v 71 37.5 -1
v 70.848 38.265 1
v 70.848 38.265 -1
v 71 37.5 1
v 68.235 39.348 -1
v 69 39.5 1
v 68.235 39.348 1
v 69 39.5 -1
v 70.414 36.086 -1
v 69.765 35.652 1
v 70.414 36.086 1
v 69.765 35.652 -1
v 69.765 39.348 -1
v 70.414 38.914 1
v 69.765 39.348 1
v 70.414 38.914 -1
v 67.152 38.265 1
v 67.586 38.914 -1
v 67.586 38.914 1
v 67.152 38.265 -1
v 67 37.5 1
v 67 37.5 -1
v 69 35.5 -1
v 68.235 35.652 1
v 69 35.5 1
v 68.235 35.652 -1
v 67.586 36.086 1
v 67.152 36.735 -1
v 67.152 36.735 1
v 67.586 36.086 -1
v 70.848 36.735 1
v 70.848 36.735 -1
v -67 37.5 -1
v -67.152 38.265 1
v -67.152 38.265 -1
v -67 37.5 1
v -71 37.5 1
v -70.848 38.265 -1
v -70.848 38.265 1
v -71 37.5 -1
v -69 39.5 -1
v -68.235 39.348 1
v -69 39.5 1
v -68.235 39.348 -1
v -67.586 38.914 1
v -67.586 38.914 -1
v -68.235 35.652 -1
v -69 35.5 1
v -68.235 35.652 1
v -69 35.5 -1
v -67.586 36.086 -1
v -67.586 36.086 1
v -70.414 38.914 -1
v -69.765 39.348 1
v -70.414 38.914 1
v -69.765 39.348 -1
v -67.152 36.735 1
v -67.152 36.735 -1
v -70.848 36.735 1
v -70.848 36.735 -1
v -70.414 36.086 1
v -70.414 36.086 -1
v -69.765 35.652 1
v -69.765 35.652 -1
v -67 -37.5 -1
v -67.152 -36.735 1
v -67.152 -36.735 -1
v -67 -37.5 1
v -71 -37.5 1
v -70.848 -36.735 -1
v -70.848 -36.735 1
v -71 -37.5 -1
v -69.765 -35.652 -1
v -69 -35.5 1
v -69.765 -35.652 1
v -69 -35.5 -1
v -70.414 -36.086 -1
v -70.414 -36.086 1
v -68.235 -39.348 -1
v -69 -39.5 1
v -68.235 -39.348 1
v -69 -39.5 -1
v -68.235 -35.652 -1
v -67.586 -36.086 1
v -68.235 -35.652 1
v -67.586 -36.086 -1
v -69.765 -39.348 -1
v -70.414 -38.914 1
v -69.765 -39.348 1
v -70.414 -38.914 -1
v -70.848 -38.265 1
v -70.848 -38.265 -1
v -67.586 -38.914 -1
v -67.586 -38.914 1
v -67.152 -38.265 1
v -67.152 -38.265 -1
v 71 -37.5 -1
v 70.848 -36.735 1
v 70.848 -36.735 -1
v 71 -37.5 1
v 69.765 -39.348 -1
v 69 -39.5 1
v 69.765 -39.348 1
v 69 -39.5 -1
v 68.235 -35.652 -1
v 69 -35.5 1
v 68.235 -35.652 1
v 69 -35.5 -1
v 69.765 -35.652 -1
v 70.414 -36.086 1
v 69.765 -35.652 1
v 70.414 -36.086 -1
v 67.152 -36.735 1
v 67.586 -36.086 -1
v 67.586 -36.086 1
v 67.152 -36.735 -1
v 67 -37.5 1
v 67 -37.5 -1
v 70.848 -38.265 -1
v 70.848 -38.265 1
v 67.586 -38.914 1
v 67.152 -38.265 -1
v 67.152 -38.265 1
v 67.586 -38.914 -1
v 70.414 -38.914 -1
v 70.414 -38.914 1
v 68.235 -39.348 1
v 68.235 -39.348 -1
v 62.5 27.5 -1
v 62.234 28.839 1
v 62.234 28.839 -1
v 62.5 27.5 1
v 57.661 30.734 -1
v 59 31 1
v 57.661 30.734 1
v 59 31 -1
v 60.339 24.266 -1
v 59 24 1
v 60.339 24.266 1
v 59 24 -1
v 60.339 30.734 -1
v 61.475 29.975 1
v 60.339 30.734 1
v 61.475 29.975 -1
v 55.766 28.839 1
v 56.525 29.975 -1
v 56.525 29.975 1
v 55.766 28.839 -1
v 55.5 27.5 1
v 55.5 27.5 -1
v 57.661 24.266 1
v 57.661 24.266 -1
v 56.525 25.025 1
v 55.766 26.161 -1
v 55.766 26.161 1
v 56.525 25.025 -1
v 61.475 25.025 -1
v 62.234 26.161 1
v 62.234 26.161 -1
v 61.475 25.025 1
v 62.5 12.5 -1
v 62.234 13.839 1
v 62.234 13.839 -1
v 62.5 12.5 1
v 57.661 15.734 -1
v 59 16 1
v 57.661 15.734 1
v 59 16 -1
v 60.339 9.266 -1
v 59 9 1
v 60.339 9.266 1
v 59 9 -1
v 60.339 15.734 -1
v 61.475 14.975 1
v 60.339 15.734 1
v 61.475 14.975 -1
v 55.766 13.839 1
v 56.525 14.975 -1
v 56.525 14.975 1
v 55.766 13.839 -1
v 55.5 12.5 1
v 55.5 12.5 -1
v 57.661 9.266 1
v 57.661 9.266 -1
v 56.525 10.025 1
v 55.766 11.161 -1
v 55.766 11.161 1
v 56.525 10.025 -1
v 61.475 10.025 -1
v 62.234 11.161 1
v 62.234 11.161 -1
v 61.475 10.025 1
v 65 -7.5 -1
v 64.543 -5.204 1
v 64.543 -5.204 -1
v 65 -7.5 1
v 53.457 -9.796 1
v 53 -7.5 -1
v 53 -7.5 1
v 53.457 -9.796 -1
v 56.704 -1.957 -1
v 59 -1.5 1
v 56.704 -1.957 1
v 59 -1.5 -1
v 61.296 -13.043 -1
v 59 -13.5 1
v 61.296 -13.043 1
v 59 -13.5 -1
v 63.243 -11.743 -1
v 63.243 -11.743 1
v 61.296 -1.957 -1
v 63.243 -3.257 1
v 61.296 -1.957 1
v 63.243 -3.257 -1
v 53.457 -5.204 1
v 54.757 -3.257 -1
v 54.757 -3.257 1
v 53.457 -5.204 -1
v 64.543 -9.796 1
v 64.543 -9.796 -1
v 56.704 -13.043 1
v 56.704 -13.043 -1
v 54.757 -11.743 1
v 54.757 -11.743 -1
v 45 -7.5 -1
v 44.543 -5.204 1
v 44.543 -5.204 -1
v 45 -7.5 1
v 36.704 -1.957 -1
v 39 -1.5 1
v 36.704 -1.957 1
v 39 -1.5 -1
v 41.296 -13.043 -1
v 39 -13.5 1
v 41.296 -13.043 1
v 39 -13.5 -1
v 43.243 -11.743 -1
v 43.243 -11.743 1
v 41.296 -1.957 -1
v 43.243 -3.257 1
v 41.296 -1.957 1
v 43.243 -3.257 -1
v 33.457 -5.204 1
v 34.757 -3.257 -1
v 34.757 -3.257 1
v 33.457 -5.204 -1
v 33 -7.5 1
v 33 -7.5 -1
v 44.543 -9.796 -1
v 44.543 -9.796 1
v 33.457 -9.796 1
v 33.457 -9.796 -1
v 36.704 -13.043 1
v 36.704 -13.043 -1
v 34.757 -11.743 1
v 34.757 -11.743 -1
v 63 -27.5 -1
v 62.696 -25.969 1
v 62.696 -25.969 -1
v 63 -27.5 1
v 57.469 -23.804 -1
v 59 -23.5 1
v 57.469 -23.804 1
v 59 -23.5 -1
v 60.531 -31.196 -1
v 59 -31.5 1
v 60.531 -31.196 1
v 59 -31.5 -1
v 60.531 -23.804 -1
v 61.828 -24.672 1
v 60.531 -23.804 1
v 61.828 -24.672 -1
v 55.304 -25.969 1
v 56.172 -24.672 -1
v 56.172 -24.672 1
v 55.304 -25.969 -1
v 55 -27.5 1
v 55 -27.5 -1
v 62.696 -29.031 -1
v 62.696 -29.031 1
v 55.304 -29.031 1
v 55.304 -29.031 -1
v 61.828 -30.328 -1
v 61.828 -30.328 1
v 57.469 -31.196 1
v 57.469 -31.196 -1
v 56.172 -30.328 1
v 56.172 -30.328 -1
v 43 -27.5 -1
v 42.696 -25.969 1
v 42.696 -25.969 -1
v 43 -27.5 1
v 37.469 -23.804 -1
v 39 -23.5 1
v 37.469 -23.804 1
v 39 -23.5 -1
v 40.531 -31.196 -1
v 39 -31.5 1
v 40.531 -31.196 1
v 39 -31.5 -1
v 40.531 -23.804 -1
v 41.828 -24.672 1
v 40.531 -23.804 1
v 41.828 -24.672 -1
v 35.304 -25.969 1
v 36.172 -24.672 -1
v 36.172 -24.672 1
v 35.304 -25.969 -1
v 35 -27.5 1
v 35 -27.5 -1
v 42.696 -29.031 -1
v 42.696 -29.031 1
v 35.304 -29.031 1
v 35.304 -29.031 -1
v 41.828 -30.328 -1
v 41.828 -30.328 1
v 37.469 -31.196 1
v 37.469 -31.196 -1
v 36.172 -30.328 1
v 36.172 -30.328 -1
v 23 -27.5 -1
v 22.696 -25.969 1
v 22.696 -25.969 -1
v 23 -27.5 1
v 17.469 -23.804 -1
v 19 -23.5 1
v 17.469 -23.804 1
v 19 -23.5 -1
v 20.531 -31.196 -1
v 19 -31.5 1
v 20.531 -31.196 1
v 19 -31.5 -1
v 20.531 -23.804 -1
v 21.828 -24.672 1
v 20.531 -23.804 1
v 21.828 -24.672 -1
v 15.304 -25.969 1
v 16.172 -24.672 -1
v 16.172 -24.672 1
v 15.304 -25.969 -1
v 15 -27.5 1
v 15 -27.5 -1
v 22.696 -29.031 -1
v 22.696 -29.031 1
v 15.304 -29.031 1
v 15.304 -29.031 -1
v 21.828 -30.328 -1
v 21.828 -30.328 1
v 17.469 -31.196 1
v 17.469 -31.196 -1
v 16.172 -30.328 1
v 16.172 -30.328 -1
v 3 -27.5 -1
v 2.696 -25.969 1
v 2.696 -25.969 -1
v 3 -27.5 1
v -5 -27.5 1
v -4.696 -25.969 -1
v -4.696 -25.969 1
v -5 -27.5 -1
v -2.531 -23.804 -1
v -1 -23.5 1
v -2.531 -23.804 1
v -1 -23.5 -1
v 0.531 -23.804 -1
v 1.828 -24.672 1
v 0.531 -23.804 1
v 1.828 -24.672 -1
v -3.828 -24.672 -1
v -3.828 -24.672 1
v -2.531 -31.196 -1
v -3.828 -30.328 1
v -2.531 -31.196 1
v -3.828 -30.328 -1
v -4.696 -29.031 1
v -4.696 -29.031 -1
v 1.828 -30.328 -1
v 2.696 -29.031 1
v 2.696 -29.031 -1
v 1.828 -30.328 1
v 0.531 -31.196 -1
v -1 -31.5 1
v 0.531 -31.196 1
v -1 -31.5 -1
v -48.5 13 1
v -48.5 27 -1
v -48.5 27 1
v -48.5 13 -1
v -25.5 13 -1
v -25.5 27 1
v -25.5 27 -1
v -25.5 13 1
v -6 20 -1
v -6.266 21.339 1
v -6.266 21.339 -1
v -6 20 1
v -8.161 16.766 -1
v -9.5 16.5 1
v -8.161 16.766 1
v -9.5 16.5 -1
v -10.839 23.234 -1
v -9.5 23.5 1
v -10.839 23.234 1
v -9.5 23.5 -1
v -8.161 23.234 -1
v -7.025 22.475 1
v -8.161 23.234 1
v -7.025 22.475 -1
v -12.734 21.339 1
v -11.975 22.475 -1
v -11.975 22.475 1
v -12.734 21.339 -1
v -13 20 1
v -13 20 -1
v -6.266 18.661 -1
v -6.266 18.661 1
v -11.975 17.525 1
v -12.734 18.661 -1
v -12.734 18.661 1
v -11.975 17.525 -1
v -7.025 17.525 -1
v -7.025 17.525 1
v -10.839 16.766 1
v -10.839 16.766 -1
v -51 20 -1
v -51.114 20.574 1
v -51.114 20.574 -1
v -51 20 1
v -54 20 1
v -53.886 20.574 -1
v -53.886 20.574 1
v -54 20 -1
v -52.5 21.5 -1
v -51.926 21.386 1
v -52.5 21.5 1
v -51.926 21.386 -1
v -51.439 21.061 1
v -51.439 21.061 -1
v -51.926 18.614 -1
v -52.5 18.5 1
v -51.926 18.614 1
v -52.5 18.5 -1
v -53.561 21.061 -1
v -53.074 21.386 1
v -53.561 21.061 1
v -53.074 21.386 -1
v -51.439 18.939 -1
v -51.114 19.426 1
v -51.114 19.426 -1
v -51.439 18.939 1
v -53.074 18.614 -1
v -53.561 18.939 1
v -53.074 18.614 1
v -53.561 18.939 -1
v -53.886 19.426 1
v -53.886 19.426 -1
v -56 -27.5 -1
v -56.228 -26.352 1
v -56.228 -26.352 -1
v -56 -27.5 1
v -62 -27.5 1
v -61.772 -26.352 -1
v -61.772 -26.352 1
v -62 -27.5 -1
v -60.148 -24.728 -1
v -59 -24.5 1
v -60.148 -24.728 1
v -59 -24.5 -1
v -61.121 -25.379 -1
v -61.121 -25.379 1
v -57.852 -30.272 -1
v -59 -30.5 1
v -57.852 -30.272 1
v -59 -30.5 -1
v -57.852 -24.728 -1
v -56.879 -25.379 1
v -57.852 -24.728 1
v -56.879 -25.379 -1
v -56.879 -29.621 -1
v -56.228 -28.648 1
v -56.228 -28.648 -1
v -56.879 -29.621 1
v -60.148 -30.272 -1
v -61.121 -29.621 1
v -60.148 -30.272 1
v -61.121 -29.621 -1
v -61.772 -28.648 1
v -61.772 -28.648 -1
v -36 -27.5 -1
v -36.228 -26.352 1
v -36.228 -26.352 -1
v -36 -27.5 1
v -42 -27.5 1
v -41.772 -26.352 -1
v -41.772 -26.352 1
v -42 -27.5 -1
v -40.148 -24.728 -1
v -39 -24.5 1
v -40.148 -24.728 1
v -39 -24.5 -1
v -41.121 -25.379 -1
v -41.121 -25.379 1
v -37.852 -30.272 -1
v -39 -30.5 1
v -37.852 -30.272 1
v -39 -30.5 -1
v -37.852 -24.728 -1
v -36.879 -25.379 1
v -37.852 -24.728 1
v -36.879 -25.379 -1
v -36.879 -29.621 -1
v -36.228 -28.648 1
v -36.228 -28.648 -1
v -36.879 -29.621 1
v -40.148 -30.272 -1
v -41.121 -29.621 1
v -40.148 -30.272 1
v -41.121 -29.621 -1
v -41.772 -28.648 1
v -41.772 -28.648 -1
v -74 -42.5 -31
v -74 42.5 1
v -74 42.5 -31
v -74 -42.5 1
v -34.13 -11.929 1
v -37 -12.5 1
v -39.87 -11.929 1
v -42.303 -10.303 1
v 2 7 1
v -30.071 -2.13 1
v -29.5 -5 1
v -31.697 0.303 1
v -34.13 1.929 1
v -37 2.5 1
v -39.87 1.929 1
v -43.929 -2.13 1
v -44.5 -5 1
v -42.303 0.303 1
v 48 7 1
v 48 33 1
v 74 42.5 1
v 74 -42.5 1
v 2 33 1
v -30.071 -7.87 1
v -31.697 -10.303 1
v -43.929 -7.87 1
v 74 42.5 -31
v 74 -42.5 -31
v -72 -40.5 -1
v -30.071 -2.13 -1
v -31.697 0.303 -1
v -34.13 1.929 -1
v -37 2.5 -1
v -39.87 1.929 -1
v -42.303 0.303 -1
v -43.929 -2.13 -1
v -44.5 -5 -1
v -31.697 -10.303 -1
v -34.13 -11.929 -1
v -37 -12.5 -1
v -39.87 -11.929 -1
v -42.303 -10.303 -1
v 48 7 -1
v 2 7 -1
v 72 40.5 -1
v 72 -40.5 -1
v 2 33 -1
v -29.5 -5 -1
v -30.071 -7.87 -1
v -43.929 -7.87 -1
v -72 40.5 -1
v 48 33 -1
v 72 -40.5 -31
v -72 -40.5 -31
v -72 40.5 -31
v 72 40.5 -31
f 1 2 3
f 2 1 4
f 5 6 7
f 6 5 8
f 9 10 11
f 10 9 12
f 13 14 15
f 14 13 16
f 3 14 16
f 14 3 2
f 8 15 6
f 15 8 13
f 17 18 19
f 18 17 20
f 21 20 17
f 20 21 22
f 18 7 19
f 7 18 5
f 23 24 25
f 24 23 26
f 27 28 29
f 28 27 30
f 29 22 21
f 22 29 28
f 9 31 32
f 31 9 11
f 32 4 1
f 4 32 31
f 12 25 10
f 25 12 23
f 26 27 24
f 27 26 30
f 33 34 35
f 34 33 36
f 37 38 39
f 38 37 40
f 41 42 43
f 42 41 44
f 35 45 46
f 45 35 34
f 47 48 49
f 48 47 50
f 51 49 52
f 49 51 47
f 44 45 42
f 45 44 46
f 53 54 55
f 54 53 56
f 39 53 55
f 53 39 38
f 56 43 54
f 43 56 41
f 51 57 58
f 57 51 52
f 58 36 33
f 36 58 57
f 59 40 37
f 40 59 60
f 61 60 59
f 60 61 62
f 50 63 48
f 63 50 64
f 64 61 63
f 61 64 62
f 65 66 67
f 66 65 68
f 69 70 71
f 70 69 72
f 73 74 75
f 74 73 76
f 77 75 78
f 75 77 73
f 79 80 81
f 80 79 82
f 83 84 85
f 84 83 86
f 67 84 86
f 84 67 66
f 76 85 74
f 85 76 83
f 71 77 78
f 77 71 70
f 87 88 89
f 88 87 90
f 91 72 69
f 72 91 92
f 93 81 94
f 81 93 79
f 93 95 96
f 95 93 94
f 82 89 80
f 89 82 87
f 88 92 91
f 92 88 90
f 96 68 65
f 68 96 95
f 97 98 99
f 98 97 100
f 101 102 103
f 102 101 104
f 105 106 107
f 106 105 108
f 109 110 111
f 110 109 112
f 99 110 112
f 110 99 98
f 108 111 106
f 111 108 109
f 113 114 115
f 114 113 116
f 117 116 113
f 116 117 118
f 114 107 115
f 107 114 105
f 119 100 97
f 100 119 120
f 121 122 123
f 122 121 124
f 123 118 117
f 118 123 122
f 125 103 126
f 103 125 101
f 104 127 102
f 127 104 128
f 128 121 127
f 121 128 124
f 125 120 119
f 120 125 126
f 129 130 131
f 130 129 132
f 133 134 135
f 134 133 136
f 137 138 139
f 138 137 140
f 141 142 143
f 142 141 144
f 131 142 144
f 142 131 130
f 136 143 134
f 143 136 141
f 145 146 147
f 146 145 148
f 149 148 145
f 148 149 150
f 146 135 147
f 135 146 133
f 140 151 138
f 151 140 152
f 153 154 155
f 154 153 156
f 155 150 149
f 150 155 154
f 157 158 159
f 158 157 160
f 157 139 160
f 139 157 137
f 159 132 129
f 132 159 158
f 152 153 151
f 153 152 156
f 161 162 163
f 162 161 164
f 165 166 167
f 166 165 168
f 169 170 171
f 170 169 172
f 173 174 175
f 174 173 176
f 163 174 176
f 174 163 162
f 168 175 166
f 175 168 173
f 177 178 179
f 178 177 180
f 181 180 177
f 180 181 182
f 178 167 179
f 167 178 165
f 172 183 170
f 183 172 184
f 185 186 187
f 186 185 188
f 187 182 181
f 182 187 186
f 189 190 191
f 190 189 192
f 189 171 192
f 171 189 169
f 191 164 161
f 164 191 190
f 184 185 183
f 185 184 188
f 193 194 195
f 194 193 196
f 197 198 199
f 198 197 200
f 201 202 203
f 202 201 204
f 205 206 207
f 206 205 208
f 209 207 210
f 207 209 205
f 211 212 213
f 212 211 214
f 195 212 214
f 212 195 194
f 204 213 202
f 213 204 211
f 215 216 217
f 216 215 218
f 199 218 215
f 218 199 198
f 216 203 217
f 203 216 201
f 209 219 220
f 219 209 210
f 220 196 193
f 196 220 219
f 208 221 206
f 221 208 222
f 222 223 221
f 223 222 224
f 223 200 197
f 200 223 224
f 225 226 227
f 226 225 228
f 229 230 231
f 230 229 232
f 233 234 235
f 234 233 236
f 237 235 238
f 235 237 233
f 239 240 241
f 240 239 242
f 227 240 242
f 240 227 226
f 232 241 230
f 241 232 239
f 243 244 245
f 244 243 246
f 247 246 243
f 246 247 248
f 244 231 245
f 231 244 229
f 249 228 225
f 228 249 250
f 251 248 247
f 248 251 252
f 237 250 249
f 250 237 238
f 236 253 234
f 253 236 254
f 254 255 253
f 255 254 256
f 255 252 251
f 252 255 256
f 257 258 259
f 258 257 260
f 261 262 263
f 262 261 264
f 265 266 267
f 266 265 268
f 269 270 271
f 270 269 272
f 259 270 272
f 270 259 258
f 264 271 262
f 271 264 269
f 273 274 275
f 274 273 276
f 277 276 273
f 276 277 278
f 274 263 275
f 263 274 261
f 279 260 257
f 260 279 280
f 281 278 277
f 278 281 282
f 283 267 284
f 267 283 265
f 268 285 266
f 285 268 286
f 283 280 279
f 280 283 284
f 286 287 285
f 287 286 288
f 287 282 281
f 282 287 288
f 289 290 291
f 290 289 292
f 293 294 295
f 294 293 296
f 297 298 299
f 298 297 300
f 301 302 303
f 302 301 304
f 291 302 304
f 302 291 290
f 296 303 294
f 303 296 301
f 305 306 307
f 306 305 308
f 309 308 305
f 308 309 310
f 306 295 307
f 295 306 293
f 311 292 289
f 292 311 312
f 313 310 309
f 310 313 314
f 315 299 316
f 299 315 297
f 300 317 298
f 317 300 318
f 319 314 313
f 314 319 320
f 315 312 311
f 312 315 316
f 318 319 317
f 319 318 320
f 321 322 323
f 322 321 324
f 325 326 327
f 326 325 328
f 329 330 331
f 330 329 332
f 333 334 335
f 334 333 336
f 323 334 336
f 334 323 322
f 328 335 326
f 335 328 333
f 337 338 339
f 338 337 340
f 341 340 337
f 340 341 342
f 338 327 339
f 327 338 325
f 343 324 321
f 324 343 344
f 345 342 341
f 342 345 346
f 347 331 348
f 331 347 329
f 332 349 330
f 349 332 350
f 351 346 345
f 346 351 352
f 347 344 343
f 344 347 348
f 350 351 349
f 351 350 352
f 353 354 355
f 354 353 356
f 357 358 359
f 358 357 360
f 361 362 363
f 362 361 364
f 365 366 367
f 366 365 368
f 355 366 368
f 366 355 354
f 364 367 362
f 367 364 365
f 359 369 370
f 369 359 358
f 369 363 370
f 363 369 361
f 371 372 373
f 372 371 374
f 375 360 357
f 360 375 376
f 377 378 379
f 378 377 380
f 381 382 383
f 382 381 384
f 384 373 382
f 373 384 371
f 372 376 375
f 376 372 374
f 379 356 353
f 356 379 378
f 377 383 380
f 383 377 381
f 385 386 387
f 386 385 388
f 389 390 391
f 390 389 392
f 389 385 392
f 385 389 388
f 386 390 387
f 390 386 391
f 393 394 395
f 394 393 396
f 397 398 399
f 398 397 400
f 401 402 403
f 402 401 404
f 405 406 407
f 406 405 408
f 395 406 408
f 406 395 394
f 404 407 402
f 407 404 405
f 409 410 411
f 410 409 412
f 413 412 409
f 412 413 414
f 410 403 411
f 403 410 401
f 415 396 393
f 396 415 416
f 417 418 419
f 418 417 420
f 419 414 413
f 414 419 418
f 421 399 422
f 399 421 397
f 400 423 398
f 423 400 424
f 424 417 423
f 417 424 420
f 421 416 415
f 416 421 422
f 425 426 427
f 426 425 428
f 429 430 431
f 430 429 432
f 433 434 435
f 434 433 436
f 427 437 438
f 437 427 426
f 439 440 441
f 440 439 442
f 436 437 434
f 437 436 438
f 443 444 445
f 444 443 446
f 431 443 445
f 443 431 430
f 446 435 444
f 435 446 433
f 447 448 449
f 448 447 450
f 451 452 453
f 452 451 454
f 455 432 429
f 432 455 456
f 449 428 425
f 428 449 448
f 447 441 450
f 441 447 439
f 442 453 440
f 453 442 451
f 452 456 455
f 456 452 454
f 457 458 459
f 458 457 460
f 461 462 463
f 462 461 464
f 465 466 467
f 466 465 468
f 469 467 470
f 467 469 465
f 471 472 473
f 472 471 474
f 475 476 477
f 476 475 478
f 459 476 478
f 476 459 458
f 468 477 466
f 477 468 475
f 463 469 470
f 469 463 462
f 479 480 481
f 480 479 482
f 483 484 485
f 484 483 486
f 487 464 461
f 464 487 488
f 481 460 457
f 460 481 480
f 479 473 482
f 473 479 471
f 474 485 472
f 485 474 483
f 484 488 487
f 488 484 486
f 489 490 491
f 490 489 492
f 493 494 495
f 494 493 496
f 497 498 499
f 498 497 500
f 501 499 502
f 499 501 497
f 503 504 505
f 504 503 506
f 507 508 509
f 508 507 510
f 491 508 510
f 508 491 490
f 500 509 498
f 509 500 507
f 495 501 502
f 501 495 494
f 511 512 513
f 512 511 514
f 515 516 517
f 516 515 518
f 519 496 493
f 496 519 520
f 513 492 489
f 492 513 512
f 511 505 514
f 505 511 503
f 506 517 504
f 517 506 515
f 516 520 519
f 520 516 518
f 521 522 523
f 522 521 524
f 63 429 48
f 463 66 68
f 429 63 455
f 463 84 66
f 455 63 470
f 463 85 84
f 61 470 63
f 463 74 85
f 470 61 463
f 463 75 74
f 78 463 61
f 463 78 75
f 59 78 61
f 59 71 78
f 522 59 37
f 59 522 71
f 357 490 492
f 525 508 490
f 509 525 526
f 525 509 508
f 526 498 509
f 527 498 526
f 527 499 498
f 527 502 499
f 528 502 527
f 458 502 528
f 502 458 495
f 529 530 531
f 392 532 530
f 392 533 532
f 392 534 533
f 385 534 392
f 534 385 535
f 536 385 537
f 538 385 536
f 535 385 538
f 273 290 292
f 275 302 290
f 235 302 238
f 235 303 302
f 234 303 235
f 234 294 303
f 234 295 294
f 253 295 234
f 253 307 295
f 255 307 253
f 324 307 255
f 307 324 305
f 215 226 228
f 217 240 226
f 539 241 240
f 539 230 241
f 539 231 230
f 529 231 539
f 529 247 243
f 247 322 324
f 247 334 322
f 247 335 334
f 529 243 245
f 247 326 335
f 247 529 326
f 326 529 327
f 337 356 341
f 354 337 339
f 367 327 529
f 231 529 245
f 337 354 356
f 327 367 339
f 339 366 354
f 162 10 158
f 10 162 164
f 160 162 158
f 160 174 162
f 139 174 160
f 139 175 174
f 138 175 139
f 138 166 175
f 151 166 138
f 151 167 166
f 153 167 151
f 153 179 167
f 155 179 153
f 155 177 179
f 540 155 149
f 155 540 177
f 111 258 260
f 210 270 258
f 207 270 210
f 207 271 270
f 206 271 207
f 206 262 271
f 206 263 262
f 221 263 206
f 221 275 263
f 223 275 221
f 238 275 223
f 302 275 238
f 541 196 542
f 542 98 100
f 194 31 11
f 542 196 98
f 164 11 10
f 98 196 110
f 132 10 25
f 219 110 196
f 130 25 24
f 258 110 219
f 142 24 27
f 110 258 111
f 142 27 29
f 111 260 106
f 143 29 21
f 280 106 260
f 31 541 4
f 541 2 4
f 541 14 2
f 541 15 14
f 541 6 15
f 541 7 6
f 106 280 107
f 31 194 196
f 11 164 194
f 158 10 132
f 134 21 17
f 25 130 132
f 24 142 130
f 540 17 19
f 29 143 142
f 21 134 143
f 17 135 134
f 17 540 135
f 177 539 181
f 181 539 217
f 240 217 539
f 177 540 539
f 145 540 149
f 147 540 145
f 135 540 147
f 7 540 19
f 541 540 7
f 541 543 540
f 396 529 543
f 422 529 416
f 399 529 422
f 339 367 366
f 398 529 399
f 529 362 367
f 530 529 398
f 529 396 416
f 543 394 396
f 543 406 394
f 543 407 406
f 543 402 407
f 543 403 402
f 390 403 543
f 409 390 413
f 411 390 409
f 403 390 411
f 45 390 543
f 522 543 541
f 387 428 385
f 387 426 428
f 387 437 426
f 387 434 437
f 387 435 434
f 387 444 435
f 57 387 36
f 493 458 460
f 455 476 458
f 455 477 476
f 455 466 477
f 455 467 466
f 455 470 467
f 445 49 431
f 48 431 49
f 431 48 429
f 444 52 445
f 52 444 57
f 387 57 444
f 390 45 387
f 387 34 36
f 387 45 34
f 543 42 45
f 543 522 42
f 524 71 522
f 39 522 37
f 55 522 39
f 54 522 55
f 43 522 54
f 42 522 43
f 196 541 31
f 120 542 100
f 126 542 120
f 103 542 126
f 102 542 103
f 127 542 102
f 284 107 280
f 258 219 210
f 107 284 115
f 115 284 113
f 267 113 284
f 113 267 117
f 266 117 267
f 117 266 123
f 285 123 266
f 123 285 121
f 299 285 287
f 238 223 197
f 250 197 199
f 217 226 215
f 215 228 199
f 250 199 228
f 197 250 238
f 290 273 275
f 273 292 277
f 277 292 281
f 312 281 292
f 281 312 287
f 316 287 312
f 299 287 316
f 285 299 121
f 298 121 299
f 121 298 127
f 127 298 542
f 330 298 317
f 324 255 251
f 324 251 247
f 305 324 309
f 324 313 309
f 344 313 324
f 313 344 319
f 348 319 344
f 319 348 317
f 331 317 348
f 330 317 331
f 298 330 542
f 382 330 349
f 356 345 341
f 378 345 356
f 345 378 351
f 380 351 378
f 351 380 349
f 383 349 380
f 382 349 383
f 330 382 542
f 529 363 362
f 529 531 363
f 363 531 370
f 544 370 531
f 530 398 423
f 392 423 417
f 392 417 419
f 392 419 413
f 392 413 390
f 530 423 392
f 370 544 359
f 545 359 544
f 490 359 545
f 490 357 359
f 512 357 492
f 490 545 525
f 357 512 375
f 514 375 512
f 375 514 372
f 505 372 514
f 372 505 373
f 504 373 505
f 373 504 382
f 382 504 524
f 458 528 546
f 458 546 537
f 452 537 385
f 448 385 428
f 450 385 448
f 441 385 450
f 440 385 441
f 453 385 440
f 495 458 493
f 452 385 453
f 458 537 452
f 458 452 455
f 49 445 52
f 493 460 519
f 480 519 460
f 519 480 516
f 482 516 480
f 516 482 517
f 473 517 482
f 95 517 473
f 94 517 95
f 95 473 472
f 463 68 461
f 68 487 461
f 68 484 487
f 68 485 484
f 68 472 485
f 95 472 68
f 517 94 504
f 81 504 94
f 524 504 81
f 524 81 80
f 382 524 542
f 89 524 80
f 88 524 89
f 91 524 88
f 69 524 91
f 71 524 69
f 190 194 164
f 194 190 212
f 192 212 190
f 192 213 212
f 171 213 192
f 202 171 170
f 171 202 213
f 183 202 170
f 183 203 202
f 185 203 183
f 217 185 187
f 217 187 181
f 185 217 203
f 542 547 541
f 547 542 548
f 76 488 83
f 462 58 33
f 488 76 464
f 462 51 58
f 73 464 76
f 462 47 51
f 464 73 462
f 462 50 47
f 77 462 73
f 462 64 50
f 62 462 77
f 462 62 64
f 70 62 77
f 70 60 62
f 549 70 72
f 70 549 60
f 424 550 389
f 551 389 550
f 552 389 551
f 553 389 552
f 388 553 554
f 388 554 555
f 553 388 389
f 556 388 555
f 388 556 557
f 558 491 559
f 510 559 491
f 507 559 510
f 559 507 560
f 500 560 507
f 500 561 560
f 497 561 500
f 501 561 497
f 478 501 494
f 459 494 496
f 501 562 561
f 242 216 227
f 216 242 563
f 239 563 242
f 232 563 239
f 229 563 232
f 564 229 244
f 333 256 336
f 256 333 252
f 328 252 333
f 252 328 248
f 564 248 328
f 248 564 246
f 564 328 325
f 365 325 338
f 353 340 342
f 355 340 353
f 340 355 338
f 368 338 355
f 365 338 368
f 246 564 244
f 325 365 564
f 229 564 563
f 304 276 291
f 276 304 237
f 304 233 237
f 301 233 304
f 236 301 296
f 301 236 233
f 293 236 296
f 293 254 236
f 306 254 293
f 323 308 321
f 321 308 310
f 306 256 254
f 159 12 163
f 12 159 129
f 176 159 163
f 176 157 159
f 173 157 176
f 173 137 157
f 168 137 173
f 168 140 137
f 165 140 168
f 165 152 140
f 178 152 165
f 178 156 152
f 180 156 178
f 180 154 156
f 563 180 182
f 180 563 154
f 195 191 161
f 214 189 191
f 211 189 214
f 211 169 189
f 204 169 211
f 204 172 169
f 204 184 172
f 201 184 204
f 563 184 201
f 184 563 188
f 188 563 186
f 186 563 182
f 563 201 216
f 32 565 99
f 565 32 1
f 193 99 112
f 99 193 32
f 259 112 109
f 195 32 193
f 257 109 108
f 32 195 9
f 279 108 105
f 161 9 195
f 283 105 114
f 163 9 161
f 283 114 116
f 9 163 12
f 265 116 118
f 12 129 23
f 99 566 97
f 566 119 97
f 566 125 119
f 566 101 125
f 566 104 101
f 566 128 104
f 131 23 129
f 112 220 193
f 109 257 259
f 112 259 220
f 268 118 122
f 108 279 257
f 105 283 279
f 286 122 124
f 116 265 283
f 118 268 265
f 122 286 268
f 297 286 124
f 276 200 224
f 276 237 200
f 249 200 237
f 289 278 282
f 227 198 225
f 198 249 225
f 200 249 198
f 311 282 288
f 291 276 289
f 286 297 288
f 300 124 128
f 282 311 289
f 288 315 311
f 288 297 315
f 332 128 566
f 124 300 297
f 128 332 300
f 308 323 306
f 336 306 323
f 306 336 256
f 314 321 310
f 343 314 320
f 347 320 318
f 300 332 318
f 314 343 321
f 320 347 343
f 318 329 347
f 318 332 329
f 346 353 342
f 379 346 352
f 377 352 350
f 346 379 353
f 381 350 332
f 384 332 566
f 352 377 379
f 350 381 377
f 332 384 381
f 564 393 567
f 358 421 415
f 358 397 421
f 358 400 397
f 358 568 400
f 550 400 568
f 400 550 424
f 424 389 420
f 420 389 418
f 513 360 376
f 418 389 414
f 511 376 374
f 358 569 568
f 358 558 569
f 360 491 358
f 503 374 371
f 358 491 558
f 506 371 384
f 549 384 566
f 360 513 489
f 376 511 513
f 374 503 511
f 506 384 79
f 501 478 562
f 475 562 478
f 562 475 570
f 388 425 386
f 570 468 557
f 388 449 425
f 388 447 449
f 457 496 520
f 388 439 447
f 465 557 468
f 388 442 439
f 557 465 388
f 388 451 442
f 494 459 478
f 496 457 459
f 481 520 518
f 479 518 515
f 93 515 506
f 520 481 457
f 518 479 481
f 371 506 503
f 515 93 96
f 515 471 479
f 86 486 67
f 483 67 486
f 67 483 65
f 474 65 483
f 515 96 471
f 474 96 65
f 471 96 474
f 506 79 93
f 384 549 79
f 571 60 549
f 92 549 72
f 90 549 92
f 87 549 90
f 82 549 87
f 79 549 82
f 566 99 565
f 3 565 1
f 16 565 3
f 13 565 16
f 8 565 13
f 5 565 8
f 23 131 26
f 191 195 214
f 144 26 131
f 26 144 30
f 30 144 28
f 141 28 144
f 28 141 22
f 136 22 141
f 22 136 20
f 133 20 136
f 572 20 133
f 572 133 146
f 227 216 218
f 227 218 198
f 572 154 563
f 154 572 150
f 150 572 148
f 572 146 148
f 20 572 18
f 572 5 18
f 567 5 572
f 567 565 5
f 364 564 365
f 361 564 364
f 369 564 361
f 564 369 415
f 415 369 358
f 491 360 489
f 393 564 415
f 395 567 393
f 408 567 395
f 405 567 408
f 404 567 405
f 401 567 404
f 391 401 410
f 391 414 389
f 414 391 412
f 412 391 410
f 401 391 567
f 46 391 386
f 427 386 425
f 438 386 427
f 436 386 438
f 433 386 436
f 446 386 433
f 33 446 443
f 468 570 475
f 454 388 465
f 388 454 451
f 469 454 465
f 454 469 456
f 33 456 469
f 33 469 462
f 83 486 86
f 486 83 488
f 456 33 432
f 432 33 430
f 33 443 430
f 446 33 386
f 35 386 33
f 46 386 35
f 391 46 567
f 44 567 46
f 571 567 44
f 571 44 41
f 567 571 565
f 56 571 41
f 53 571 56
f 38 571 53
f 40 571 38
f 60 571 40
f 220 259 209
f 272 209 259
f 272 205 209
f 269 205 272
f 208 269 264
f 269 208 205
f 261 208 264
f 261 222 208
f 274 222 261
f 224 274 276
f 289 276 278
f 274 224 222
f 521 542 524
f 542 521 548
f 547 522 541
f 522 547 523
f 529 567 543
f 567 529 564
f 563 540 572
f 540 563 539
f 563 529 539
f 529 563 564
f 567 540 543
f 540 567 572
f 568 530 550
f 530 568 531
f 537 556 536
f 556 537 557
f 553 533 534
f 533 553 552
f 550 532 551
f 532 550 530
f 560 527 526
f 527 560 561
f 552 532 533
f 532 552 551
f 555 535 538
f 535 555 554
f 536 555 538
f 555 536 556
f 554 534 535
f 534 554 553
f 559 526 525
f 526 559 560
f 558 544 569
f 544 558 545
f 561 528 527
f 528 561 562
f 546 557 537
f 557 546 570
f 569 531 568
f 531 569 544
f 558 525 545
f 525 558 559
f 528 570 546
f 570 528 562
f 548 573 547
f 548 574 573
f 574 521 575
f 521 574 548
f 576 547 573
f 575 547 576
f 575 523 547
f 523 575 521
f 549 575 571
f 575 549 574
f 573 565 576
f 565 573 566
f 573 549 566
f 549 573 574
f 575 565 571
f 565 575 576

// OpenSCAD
w = 148;
h = 85;

difference() {
    cube([w,h,2], center=true);
    for (t=[[(w/2-5),(h/2-5),0],[-(w/2-5),(h/2-5),0],[-(w/2-5),-(h/2-5),0],[(w/2-5),-(h/2-5),0]])
       translate(t)
            cylinder(d=4, h=5, center=true, $fn=16);
    translate([25,20,0])
        cube([46,26,5], center=true);

    for (t=[[(w/2-15),(h/2-15),0],[(w/2-15),(h/2-30),0]])
       translate(t)
            cylinder(d=7, h=5, center=true, $fn=16);

    for (t=[[(w/2-15),-(h/2-35),0],[(w/2-35),-(h/2-35),0]])
       translate(t)
            cylinder(d=12, h=5, center=true, $fn=16);

    for (t=[[(w/2-15),-(h/2-15),0],[(w/2-35),-(h/2-15),0],[(w/2-55),-(h/2-15),0],[(w/2-75),-(h/2-15),0]])
       translate(t)
            cylinder(d=8, h=5, center=true, $fn=16);

    translate([-37,20,0]) {
//        cube([70,25,1], center=true);
        
        cube([23,14,5], center=true);
       translate([23/2+16,0,0])
            cylinder(d=7, h=5, center=true, $fn=16);
       translate([-23/2-4,0,0])
            cylinder(d=3, h=5, center=true, $fn=16);

    }

    translate([-37,-5,0]) {
        cylinder(d=15, h=5, center=true, $fn=16);
    }    
    
    for (t=[[-(w/2-15),-(h/2-15),0],[-(w/2-35),-(h/2-15),0]])
       translate(t)
            cylinder(d=6, h=5, center=true, $fn=16);

}

translate([0,0,-16])
difference() {
    cube([w,h,30], center=true);
    cube([w-4,h-4,30.1], center=true);

}
